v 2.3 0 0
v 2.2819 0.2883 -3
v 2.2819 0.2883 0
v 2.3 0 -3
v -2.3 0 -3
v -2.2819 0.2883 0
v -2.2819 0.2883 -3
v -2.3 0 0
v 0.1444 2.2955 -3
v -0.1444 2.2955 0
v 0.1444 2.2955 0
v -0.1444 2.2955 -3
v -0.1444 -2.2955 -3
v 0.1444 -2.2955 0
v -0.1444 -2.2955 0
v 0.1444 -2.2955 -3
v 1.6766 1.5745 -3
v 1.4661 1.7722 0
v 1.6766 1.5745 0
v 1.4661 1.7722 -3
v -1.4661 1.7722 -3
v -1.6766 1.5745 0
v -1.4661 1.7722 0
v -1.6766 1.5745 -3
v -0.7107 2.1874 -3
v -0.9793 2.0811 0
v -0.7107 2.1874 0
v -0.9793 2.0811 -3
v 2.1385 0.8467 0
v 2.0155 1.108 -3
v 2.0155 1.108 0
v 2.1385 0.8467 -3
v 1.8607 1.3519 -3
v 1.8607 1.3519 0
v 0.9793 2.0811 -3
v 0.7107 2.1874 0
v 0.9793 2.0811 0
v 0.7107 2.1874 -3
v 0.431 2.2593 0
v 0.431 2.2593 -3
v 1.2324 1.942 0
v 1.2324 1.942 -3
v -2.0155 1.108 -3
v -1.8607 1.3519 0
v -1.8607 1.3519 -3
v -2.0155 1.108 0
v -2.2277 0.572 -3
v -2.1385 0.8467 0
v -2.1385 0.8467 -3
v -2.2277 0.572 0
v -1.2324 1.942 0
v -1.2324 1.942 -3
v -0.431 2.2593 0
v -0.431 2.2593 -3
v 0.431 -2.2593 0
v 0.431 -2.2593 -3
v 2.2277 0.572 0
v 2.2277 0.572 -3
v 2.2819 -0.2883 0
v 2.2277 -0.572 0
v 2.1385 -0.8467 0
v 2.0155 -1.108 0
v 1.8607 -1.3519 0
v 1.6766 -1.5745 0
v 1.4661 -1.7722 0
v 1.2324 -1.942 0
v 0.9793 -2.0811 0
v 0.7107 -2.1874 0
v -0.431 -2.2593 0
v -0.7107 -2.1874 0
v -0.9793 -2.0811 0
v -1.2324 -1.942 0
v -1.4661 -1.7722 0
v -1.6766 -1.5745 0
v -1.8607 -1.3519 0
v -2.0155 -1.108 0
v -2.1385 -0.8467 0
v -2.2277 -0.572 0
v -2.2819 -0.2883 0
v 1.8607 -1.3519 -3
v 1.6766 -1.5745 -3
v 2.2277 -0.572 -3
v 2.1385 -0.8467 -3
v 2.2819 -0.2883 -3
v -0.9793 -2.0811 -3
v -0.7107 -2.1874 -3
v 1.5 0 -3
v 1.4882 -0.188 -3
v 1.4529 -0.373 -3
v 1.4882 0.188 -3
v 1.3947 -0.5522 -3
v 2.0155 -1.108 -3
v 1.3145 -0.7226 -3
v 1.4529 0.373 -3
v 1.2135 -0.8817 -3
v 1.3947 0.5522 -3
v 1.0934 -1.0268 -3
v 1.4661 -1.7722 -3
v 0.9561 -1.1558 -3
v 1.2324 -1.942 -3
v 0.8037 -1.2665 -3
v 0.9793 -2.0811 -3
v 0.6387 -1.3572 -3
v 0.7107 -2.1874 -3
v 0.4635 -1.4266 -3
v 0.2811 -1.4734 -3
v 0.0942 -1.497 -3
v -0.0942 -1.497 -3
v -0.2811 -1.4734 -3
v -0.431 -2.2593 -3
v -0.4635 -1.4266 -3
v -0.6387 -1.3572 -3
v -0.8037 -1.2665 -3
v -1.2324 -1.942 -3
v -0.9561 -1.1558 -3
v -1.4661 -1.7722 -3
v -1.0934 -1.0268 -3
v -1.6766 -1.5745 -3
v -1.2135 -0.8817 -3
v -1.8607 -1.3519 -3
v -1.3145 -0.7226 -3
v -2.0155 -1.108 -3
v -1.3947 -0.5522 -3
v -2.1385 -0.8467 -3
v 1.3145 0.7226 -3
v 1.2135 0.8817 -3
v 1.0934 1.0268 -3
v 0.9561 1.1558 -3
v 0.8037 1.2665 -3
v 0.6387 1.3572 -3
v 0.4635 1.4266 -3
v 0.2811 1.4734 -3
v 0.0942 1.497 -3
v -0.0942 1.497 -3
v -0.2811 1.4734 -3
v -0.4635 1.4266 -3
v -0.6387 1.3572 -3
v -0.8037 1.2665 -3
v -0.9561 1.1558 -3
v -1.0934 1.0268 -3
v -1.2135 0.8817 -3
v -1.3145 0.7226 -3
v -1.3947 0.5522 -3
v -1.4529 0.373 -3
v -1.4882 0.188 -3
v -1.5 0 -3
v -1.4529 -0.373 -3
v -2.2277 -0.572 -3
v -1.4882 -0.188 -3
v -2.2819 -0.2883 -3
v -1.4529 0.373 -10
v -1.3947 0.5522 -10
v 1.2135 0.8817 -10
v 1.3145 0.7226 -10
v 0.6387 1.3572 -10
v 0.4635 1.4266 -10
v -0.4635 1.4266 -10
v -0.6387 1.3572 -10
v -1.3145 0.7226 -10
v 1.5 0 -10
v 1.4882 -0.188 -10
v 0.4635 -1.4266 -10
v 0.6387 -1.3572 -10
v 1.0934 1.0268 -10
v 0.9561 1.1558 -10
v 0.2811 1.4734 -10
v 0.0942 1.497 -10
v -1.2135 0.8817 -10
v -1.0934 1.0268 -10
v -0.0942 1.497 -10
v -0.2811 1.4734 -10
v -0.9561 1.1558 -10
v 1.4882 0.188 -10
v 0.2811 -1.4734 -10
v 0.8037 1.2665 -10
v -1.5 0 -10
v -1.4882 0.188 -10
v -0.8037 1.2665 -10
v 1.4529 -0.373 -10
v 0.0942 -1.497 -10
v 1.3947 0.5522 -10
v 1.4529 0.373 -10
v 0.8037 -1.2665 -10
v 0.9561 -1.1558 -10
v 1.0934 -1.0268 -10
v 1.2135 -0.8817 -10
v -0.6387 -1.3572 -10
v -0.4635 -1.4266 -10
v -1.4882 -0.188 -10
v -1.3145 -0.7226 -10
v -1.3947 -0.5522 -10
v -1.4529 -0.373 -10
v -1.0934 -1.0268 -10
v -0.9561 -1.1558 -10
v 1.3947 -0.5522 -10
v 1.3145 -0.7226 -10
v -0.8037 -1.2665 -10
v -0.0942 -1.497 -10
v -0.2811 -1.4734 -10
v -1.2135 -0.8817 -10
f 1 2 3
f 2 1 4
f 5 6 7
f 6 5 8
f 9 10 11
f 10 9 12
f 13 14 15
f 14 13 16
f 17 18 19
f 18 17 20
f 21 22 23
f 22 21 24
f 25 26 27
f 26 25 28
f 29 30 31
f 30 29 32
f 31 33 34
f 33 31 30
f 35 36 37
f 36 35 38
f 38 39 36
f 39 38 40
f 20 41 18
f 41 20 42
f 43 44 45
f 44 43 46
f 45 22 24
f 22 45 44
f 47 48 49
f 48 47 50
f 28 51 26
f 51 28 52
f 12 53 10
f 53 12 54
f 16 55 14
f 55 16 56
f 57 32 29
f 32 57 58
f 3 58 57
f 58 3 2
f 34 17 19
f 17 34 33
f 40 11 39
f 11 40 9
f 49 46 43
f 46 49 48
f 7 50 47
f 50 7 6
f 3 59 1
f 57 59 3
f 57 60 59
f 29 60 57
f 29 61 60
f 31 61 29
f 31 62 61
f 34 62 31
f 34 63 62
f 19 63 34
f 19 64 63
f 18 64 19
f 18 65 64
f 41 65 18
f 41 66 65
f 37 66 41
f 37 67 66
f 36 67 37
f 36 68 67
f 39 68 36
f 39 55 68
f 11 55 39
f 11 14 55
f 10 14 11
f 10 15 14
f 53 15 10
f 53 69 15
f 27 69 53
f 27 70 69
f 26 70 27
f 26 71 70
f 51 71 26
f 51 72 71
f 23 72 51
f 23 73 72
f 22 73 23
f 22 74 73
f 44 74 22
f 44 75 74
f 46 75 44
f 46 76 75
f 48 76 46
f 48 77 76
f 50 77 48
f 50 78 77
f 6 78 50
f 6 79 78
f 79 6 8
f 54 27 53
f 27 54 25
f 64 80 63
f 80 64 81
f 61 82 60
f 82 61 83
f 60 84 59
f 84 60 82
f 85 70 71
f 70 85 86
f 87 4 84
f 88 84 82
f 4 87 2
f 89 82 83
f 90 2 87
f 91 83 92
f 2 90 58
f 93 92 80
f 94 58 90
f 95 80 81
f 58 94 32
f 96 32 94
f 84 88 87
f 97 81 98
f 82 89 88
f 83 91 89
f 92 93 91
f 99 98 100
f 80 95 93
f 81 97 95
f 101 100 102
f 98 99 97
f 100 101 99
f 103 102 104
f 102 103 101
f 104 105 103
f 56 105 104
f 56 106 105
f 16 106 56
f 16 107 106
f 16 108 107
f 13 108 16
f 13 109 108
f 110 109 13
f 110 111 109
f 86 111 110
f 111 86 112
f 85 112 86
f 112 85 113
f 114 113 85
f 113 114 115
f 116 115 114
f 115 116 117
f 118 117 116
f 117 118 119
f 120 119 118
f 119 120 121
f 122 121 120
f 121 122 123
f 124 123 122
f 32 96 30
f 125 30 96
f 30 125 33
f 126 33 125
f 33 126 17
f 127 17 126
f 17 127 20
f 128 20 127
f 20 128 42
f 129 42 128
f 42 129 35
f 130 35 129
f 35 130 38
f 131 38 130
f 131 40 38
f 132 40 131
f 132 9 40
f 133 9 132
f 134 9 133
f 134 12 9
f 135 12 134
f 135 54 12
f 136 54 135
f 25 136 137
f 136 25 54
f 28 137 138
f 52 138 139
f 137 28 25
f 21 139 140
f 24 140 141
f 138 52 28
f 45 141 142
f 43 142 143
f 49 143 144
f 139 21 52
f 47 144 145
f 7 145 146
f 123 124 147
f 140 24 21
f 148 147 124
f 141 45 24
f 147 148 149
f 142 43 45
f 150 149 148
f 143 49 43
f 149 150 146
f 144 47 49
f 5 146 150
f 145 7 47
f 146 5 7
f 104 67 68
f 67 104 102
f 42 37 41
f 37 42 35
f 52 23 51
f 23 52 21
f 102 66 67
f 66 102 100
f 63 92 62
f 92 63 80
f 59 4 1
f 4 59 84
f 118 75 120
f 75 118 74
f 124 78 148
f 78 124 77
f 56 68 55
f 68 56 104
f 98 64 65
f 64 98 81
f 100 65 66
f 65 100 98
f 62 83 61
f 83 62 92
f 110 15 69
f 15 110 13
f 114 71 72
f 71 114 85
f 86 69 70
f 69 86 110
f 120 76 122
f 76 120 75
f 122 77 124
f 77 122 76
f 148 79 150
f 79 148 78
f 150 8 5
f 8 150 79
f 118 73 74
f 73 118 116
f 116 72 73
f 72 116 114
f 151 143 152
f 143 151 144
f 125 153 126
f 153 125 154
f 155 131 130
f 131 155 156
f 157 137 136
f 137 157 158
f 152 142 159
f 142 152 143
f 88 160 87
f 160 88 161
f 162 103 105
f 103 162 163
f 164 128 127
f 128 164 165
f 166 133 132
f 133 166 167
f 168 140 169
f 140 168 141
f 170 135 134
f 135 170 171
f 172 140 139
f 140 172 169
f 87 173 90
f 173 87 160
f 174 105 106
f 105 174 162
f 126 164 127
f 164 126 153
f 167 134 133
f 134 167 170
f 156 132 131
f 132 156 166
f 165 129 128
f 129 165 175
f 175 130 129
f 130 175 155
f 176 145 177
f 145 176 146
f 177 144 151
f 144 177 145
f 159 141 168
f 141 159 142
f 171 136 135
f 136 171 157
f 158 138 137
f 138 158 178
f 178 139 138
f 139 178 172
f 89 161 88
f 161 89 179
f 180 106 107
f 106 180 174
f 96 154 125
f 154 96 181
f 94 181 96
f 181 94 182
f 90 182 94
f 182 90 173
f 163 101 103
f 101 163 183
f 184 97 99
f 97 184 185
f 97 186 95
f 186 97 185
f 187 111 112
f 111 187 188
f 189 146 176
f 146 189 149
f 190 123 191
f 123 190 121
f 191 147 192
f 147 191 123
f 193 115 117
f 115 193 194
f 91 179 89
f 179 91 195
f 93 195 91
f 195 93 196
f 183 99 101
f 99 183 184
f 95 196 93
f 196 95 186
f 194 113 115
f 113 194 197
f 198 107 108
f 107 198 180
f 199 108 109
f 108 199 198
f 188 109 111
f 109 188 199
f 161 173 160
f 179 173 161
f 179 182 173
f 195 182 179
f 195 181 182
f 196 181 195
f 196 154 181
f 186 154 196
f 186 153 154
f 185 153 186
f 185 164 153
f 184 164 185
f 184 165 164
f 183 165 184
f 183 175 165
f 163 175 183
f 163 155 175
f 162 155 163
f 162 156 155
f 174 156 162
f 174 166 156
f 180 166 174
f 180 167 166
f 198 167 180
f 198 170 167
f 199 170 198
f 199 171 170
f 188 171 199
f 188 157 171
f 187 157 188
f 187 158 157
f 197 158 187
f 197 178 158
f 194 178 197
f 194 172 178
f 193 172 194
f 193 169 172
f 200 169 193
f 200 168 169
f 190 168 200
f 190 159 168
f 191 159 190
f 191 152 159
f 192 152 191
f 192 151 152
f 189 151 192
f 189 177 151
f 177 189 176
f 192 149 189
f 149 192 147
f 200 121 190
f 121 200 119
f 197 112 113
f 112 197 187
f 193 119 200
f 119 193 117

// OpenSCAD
$fn = 50;


difference() {
	union() {
		translate(v = [0, 0, -3]) {
			rotate(a = [0, 0, 0]) {
				cylinder(h = 3, r1 = 2.3000000000, r2 = 2.3000000000);
			}
		}
		translate(v = [0, 0, -10]) {
			rotate(a = [0, 0, 0]) {
				cylinder(h = 10, r = 1.5000000000);
			}
		}
	}
	union();
}
